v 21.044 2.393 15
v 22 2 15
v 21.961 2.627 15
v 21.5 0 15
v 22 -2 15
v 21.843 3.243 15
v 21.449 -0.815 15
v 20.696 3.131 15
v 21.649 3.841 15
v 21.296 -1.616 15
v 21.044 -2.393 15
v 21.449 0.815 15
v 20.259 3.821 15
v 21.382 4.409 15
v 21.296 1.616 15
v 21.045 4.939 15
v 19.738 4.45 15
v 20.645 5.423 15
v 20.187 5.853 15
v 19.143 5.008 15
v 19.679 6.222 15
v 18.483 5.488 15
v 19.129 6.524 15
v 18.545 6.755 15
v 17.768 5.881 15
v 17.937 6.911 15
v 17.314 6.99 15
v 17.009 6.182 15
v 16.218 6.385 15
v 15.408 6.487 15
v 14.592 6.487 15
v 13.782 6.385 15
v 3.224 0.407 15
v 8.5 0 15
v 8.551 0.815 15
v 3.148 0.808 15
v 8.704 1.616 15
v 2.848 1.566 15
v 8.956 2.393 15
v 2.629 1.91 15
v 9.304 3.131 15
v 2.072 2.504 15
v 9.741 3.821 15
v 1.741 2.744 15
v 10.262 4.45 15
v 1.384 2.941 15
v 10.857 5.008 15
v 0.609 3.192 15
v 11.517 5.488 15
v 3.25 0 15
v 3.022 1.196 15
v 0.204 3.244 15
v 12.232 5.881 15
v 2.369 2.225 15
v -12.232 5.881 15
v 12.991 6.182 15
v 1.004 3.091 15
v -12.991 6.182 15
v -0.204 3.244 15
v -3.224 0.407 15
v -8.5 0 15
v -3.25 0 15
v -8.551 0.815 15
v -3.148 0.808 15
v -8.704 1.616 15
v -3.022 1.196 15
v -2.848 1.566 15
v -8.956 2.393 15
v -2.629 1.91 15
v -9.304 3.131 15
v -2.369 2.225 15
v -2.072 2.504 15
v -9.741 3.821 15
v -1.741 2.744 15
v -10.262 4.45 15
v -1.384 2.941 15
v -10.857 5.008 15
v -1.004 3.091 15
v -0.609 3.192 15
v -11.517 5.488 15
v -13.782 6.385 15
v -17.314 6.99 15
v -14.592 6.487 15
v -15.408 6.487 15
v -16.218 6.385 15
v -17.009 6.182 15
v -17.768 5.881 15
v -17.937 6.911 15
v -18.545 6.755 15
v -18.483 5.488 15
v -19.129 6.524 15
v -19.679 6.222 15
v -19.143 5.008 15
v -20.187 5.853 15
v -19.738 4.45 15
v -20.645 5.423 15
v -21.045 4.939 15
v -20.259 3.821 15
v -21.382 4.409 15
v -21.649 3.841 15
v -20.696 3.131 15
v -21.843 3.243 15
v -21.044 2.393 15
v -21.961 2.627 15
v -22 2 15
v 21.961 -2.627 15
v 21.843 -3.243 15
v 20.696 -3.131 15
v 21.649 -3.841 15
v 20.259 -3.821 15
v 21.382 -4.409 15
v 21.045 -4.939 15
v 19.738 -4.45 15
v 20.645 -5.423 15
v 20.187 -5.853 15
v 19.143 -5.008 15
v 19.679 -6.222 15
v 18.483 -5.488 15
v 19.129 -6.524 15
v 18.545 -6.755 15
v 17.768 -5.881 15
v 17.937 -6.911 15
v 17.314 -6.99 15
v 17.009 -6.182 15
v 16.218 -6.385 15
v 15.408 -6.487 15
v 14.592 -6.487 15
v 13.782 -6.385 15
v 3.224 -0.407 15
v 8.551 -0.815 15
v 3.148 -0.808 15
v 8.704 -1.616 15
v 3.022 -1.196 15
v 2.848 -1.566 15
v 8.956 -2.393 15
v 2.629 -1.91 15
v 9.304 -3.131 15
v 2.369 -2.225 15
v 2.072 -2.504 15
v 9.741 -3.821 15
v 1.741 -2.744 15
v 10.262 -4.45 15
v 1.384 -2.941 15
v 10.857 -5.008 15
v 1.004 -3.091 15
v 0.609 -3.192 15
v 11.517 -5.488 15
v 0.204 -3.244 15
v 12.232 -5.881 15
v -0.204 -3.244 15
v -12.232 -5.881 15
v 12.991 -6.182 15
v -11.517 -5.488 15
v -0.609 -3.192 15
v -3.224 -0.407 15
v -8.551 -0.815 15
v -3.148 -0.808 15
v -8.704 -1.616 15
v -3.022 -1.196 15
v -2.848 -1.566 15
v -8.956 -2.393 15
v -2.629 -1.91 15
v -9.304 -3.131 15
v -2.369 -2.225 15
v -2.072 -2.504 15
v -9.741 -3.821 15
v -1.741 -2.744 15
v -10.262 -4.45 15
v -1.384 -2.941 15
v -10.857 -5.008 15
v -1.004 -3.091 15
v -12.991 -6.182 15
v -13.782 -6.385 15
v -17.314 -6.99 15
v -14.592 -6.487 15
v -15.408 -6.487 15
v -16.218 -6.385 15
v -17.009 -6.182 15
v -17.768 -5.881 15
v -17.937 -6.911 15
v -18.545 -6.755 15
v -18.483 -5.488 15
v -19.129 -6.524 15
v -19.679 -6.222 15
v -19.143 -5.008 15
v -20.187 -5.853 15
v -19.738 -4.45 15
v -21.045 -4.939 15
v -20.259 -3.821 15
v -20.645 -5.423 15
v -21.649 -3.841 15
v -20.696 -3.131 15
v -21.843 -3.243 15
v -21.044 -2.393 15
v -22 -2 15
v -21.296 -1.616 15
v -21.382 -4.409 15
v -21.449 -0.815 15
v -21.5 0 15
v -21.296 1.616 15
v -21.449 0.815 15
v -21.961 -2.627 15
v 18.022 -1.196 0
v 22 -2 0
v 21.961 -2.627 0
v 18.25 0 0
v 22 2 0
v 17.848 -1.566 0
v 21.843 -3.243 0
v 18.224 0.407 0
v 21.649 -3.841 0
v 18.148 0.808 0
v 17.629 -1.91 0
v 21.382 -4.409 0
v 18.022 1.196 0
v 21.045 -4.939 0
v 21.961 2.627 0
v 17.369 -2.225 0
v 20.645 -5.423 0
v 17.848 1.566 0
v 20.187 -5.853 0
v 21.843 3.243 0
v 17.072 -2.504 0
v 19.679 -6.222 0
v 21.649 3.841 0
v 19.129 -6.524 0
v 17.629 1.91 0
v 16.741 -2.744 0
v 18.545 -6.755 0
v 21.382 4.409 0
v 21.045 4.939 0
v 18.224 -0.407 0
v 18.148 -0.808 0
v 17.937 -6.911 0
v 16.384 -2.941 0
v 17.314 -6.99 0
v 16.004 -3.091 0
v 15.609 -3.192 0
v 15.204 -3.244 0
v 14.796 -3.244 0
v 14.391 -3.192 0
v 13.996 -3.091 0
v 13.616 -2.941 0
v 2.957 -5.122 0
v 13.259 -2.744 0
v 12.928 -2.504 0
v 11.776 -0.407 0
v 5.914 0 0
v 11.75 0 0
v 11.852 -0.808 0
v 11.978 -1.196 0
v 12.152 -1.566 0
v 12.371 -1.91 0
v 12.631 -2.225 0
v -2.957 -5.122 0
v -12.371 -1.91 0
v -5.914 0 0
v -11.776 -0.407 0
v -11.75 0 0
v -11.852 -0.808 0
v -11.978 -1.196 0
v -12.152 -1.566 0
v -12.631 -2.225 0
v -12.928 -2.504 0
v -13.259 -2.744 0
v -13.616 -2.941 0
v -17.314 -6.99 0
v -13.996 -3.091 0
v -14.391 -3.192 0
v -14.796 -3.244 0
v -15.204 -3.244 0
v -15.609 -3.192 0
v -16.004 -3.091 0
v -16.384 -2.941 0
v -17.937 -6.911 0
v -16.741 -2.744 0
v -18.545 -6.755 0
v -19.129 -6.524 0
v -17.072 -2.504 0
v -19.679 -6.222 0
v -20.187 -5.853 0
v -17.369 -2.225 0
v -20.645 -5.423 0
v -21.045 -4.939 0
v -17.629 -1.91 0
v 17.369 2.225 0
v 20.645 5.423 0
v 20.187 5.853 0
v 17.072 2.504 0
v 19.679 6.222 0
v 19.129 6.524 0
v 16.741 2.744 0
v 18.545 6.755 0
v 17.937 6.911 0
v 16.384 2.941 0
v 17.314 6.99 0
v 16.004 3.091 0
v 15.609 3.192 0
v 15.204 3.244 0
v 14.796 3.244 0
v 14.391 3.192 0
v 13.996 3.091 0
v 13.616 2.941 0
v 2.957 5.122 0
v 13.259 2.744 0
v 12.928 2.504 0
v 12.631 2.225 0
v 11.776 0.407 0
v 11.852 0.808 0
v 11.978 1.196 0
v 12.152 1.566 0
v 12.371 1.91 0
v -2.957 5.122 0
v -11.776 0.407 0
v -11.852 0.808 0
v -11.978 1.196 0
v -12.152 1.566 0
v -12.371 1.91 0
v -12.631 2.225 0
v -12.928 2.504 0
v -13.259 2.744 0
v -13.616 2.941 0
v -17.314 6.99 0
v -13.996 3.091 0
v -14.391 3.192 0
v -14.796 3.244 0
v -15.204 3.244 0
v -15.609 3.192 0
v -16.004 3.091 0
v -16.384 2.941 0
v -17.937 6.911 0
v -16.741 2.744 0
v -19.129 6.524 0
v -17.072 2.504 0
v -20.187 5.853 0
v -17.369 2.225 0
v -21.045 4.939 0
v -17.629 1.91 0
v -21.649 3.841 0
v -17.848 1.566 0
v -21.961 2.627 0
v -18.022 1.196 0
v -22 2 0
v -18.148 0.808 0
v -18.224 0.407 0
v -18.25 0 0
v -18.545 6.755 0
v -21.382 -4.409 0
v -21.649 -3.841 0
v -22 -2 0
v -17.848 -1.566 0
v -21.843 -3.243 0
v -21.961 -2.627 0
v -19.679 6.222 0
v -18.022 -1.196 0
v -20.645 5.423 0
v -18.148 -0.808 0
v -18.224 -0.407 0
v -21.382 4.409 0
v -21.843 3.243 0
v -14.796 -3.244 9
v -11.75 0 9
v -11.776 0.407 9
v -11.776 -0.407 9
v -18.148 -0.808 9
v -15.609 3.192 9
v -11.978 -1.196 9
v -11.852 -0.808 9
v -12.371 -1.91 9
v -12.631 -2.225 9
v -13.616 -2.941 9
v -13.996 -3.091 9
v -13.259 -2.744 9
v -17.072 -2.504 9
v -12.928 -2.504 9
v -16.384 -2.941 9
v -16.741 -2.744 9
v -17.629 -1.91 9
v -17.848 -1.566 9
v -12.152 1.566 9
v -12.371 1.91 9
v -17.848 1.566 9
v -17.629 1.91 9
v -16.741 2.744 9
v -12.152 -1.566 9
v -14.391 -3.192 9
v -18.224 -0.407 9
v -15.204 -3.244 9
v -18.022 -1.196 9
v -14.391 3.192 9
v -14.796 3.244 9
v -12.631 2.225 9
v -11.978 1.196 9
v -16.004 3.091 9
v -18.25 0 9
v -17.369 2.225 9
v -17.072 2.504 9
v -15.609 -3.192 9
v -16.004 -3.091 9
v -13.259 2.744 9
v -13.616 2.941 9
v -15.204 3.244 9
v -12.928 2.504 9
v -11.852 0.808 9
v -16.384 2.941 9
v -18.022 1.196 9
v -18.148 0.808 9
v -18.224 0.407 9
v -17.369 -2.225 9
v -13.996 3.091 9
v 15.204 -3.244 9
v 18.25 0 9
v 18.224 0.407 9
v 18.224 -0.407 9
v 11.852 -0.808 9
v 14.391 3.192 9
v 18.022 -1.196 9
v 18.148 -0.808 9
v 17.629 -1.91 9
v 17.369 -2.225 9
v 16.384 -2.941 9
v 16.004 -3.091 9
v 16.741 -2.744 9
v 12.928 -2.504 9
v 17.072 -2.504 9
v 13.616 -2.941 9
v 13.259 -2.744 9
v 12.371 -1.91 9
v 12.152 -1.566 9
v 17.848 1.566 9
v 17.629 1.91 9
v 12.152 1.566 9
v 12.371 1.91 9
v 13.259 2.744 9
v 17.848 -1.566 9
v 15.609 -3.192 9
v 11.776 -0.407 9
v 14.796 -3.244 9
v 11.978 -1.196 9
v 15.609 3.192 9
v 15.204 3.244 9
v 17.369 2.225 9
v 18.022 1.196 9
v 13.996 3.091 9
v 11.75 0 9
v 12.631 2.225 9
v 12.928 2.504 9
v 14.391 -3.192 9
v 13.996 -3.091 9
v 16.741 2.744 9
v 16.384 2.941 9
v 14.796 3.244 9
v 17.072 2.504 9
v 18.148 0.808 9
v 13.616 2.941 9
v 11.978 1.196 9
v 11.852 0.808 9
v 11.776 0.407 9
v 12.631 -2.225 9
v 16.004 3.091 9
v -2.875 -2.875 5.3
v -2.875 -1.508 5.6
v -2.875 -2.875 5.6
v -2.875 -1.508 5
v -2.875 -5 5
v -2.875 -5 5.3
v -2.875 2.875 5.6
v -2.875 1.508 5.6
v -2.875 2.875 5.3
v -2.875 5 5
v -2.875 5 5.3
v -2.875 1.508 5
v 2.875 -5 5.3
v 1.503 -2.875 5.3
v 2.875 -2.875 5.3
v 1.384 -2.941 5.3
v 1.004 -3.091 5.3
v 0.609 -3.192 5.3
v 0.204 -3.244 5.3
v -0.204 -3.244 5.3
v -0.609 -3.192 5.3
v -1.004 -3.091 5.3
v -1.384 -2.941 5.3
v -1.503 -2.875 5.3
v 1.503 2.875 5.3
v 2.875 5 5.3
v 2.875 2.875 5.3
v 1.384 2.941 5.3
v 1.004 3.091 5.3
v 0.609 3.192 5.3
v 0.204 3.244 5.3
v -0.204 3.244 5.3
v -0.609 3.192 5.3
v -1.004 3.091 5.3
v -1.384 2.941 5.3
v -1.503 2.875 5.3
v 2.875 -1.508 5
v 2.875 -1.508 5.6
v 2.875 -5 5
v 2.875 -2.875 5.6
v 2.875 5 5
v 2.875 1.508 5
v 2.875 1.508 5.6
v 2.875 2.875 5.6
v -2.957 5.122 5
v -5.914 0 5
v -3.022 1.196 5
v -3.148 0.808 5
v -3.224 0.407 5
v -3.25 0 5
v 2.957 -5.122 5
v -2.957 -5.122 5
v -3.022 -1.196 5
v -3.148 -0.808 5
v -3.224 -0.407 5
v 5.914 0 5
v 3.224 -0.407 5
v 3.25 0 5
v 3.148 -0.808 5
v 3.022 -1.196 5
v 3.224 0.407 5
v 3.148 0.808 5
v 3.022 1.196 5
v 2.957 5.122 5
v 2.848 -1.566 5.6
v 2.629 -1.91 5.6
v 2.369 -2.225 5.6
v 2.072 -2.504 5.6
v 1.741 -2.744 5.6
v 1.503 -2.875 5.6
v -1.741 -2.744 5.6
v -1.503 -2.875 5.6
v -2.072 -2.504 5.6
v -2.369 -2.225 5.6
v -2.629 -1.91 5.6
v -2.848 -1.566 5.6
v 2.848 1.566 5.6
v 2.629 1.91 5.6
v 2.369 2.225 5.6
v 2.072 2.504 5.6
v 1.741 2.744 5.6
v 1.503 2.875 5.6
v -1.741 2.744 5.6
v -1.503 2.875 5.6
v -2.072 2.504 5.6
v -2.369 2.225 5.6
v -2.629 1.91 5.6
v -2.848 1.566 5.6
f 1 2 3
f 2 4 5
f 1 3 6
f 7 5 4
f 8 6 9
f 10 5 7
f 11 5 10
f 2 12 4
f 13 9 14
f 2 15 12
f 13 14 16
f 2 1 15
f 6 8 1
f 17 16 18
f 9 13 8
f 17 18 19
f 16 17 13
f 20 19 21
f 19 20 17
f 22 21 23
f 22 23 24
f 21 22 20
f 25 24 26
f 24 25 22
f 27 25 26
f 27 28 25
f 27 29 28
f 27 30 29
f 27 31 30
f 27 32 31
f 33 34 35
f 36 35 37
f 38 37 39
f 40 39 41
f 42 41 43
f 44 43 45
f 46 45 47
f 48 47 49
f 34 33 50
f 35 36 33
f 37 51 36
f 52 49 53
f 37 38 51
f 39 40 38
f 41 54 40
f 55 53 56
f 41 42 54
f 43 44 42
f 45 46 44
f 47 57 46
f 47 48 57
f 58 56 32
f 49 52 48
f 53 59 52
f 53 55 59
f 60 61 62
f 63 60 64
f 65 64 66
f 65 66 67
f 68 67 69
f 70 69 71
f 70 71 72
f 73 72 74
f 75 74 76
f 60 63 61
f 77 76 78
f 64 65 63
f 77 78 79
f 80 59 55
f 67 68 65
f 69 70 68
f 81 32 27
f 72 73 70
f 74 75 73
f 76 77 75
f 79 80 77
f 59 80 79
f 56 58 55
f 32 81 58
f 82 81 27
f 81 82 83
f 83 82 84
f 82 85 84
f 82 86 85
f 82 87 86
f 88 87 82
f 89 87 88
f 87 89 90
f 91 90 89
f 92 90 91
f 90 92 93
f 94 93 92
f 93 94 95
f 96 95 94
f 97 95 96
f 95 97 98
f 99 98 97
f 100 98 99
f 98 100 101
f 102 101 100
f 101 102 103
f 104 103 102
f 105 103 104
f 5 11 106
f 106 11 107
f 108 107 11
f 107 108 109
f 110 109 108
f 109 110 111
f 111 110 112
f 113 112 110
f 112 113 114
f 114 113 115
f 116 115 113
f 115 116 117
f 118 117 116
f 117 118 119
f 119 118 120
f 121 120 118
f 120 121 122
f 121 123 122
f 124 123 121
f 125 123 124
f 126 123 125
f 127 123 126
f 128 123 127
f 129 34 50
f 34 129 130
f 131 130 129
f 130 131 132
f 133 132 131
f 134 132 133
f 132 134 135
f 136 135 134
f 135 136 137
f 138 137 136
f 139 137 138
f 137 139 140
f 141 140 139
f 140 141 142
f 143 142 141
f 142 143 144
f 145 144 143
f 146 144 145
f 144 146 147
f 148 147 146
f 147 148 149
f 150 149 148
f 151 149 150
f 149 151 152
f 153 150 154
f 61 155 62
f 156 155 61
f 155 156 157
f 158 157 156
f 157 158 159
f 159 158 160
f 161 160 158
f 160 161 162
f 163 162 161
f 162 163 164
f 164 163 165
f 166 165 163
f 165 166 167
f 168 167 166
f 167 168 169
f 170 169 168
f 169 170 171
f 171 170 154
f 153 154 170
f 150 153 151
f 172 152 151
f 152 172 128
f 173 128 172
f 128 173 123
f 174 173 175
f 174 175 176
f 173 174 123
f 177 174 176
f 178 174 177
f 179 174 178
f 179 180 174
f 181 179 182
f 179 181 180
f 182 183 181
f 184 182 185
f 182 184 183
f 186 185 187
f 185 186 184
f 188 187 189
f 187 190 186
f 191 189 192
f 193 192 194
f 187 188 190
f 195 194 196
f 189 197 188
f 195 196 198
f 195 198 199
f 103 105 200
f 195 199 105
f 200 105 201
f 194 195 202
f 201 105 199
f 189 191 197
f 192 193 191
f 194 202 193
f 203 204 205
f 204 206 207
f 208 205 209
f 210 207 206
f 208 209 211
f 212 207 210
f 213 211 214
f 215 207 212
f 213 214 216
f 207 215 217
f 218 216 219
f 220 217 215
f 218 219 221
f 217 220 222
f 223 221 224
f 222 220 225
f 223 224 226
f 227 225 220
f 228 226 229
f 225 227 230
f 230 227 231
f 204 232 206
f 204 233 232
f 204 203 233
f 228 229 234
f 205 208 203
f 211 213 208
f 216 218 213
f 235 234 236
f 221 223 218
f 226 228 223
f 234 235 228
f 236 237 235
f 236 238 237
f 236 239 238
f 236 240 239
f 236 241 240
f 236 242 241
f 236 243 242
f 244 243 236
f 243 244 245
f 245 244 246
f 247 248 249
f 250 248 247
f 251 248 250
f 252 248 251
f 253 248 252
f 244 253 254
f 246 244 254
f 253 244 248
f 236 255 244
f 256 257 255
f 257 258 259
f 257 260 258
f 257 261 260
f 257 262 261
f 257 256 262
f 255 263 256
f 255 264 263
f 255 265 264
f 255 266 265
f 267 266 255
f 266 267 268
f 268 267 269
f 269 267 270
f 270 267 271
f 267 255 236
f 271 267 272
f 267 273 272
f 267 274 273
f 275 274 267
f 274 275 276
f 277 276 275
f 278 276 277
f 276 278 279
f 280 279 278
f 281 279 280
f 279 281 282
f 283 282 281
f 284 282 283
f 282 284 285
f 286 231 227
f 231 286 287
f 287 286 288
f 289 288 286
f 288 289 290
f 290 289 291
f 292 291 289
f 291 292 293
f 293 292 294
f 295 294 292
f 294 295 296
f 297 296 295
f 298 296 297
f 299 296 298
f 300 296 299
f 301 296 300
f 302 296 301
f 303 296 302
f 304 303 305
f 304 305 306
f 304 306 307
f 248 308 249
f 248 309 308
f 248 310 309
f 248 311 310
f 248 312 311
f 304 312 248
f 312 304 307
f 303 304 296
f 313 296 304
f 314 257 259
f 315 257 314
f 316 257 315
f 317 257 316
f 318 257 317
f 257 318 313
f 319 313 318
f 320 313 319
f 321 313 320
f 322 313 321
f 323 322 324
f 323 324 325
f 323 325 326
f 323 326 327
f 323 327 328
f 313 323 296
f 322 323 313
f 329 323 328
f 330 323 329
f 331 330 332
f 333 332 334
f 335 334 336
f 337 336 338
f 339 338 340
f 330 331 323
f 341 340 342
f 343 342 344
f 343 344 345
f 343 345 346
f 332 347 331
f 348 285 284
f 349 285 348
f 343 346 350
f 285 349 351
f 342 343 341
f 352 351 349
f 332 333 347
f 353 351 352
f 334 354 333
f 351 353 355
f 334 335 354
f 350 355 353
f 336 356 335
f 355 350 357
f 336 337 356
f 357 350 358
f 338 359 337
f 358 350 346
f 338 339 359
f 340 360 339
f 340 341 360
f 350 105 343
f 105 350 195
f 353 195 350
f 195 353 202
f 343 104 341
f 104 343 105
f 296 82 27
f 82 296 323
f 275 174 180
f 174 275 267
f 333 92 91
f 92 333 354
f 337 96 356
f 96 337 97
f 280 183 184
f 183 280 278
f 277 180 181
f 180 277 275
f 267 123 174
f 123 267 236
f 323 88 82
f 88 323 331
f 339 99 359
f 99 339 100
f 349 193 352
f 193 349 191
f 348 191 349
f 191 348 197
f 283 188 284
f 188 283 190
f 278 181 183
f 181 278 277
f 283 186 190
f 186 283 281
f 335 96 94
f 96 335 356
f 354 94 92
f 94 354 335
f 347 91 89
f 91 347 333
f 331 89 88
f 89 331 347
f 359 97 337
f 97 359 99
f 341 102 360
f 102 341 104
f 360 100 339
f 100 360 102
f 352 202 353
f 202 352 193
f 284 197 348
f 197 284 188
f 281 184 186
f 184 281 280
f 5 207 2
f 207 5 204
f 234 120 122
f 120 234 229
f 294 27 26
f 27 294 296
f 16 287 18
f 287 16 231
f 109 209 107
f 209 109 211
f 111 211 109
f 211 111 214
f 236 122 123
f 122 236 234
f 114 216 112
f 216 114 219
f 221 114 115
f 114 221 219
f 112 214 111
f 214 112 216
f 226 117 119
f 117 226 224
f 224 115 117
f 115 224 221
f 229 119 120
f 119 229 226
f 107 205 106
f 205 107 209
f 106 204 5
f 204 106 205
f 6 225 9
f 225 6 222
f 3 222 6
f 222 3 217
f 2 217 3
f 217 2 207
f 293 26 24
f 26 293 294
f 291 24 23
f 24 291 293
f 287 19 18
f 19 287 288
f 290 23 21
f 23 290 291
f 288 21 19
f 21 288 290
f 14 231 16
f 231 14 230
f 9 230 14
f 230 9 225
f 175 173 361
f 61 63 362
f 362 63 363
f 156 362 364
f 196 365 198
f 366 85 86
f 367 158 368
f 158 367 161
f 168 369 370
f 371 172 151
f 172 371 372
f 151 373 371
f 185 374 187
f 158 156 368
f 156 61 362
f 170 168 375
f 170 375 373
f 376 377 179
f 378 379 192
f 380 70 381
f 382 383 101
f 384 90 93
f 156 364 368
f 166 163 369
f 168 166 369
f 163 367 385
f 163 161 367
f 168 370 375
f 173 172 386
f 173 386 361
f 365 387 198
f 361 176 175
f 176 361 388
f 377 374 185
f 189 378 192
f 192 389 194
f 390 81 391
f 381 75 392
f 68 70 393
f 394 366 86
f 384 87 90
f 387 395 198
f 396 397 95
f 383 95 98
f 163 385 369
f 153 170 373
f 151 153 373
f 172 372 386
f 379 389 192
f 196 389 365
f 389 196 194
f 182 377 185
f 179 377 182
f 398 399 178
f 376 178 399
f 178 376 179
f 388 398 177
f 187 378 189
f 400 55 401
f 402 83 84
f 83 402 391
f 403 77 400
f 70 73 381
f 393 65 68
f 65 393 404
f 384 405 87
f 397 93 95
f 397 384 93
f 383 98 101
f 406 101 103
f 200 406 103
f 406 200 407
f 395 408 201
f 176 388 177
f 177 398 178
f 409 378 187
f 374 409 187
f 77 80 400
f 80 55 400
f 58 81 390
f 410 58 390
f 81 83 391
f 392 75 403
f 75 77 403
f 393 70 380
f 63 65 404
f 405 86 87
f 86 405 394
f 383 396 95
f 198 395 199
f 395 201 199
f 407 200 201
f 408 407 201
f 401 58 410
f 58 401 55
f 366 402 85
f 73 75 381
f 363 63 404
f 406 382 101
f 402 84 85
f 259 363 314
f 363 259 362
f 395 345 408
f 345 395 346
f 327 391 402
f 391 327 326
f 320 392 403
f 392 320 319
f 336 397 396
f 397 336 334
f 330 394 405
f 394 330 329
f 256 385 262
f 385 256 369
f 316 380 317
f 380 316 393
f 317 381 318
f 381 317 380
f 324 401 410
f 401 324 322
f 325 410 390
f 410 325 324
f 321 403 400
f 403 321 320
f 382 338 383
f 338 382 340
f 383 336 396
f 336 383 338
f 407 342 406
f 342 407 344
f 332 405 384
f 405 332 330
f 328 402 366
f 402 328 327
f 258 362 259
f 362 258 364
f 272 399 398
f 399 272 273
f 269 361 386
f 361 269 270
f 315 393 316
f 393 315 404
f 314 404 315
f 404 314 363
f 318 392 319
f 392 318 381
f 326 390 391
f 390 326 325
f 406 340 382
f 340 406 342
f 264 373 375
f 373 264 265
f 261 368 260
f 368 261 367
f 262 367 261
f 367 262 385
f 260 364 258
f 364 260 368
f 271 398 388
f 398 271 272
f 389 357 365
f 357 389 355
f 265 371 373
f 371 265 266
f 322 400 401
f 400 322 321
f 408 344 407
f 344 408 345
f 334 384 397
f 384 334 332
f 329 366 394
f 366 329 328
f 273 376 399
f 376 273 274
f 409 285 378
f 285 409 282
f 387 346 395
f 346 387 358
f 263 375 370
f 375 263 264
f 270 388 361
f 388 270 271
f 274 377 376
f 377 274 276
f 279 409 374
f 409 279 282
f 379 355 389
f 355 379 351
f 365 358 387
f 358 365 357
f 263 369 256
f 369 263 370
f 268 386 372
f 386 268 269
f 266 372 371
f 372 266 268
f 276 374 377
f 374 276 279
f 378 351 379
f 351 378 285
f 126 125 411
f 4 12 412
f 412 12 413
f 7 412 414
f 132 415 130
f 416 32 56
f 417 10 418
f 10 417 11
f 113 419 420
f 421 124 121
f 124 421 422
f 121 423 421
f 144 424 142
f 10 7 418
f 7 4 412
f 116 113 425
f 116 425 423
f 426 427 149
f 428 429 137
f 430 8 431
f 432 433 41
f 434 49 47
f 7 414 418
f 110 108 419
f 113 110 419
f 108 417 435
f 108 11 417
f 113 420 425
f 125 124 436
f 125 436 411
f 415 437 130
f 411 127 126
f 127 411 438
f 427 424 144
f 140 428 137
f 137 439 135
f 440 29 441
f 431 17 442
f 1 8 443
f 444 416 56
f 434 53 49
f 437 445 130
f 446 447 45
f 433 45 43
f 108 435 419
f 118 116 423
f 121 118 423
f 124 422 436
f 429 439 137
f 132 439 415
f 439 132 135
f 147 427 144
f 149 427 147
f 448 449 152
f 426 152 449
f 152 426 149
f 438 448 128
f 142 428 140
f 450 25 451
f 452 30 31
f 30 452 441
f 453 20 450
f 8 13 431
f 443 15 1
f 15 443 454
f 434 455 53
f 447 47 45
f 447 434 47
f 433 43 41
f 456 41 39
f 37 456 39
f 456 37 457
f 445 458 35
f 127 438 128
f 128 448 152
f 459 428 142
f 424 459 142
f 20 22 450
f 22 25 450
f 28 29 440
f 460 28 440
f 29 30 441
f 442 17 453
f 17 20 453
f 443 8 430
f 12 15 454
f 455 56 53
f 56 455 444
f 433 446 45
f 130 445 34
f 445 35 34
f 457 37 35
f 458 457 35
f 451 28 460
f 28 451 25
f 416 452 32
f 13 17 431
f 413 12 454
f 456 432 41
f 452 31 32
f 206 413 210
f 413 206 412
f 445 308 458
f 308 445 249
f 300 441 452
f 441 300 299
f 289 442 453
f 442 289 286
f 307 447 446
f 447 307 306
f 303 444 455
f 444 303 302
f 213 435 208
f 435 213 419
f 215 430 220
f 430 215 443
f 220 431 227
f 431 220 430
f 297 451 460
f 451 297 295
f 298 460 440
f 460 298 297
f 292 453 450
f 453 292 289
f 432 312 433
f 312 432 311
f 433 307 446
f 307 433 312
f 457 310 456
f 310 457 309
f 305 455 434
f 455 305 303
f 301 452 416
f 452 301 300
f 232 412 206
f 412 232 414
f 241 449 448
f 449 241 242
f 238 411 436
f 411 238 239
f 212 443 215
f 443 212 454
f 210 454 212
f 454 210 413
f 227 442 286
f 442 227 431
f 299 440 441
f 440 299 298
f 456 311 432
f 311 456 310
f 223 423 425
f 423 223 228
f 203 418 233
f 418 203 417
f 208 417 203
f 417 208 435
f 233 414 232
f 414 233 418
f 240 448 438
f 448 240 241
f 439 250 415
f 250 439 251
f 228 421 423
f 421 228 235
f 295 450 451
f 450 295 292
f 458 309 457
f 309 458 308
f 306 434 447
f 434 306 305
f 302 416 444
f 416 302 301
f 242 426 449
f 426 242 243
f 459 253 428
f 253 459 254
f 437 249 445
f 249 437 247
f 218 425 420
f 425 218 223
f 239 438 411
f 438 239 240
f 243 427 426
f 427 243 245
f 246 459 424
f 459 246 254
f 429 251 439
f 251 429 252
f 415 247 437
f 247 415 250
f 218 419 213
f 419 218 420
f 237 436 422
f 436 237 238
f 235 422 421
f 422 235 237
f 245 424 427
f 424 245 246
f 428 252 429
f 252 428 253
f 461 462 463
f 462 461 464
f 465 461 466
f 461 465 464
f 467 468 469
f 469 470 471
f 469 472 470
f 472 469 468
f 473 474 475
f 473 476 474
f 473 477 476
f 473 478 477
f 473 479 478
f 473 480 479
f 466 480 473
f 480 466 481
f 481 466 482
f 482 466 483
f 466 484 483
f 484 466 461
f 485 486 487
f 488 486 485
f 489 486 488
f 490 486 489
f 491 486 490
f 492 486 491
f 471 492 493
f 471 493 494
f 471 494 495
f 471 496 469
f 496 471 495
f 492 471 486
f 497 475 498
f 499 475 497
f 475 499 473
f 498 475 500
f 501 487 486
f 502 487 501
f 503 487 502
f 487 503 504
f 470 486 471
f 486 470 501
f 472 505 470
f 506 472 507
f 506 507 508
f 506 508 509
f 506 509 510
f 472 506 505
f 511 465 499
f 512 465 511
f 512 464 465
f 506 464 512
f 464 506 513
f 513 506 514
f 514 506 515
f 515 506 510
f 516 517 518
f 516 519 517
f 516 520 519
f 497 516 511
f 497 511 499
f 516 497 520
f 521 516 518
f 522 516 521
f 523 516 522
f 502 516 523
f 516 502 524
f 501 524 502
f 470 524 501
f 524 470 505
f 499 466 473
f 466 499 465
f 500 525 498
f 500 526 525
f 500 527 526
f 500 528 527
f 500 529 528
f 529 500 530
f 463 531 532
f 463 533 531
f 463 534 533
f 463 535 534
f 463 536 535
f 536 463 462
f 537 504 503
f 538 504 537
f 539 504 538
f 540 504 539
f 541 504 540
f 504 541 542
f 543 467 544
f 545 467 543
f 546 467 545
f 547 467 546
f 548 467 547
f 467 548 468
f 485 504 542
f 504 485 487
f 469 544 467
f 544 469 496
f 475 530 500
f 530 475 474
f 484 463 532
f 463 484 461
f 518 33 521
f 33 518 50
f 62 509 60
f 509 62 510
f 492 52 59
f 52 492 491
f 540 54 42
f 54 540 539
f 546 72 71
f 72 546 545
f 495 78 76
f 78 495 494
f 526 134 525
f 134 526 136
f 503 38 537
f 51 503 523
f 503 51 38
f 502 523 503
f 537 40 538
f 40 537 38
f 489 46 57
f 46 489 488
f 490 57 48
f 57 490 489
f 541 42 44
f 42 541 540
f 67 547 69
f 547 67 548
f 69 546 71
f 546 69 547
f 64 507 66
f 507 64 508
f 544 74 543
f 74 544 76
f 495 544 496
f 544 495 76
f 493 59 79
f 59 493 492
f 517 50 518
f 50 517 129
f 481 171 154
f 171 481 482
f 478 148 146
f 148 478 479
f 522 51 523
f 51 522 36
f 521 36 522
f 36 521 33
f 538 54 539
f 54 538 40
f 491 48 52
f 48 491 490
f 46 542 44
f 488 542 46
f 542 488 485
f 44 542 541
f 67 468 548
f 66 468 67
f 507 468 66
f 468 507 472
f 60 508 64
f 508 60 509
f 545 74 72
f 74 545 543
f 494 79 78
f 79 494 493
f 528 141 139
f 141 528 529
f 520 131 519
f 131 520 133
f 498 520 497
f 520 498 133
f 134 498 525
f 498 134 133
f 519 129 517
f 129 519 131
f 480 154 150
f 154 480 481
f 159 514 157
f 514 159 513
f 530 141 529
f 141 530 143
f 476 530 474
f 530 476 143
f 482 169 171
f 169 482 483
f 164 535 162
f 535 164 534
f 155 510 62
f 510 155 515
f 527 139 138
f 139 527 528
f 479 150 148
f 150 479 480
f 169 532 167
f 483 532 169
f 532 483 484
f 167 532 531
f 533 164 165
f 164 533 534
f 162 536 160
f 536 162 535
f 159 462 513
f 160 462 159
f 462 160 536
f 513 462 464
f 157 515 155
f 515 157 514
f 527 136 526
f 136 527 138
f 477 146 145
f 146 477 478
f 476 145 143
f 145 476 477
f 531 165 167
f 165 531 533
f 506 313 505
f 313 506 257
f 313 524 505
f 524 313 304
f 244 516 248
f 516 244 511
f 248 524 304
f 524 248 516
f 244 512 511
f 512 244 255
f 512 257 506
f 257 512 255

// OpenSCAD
$fn = 50;


difference() {
	union() {
		cylinder(h = 15, r = 7.0000000000);
		translate(v = [-7.5000000000, 0.0000000000, 0]) {
			hull() {
				translate(v = [-9.5000000000, 2.0000000000, 0]) {
					cylinder(h = 15, r = 5);
				}
				translate(v = [9.5000000000, 2.0000000000, 0]) {
					cylinder(h = 15, r = 5);
				}
				translate(v = [-9.5000000000, -2.0000000000, 0]) {
					cylinder(h = 15, r = 5);
				}
				translate(v = [9.5000000000, -2.0000000000, 0]) {
					cylinder(h = 15, r = 5);
				}
			}
		}
		translate(v = [-7.5000000000, 0.0000000000, 0]) {
			hull() {
				translate(v = [-9.5000000000, 2.0000000000, 0]) {
					cylinder(h = 15, r = 5);
				}
				translate(v = [9.5000000000, 2.0000000000, 0]) {
					cylinder(h = 15, r = 5);
				}
				translate(v = [-9.5000000000, -2.0000000000, 0]) {
					cylinder(h = 15, r = 5);
				}
				translate(v = [9.5000000000, -2.0000000000, 0]) {
					cylinder(h = 15, r = 5);
				}
			}
		}
		translate(v = [7.5000000000, 0.0000000000, 0]) {
			hull() {
				translate(v = [-9.5000000000, 2.0000000000, 0]) {
					cylinder(h = 15, r = 5);
				}
				translate(v = [9.5000000000, 2.0000000000, 0]) {
					cylinder(h = 15, r = 5);
				}
				translate(v = [-9.5000000000, -2.0000000000, 0]) {
					cylinder(h = 15, r = 5);
				}
				translate(v = [9.5000000000, -2.0000000000, 0]) {
					cylinder(h = 15, r = 5);
				}
			}
		}
		translate(v = [7.5000000000, 0.0000000000, 0]) {
			hull() {
				translate(v = [-9.5000000000, 2.0000000000, 0]) {
					cylinder(h = 15, r = 5);
				}
				translate(v = [9.5000000000, 2.0000000000, 0]) {
					cylinder(h = 15, r = 5);
				}
				translate(v = [-9.5000000000, -2.0000000000, 0]) {
					cylinder(h = 15, r = 5);
				}
				translate(v = [9.5000000000, -2.0000000000, 0]) {
					cylinder(h = 15, r = 5);
				}
			}
		}
	}
	union() {
		translate(v = [-15.0000000000, 0.0000000000, 15]) {
			rotate(a = [0, 0, 0]) {
				difference() {
					union() {
						#translate(v = [0, 0, -15.0000000000]) {
							cylinder(h = 15, r = 2.2500000000);
						}
						#translate(v = [0, 0, -6]) {
							cylinder(h = 6, r1 = 3.2500000000, r2 = 6.5000000000);
						}
						#translate(v = [0, 0, -15.0000000000]) {
							cylinder(h = 15, r = 3.2500000000);
						}
						#translate(v = [0, 0, -15.0000000000]) {
							cylinder(h = 15, r = 2.2500000000);
						}
					}
					union();
				}
			}
		}
		translate(v = [-15.0000000000, 0.0000000000, 15]) {
			rotate(a = [0, 0, 0]) {
				difference() {
					union() {
						#translate(v = [0, 0, -15.0000000000]) {
							cylinder(h = 15, r = 2.2500000000);
						}
						#translate(v = [0, 0, -6]) {
							cylinder(h = 6, r1 = 3.2500000000, r2 = 6.5000000000);
						}
						#translate(v = [0, 0, -15.0000000000]) {
							cylinder(h = 15, r = 3.2500000000);
						}
						#translate(v = [0, 0, -15.0000000000]) {
							cylinder(h = 15, r = 2.2500000000);
						}
					}
					union();
				}
			}
		}
		translate(v = [15.0000000000, 0.0000000000, 15]) {
			rotate(a = [0, 0, 0]) {
				difference() {
					union() {
						#translate(v = [0, 0, -15.0000000000]) {
							cylinder(h = 15, r = 2.2500000000);
						}
						#translate(v = [0, 0, -6]) {
							cylinder(h = 6, r1 = 3.2500000000, r2 = 6.5000000000);
						}
						#translate(v = [0, 0, -15.0000000000]) {
							cylinder(h = 15, r = 3.2500000000);
						}
						#translate(v = [0, 0, -15.0000000000]) {
							cylinder(h = 15, r = 2.2500000000);
						}
					}
					union();
				}
			}
		}
		translate(v = [15.0000000000, 0.0000000000, 15]) {
			rotate(a = [0, 0, 0]) {
				difference() {
					union() {
						#translate(v = [0, 0, -15.0000000000]) {
							cylinder(h = 15, r = 2.2500000000);
						}
						#translate(v = [0, 0, -6]) {
							cylinder(h = 6, r1 = 3.2500000000, r2 = 6.5000000000);
						}
						#translate(v = [0, 0, -15.0000000000]) {
							cylinder(h = 15, r = 3.2500000000);
						}
						#translate(v = [0, 0, -15.0000000000]) {
							cylinder(h = 15, r = 2.2500000000);
						}
					}
					union();
				}
			}
		}
		translate(v = [0.0000000000, 0.0000000000, 0]) {
			rotate(a = [0, 0, 0]) {
				difference() {
					union() {
						#translate(v = [-2.8750000000, -5.0000000000, -0.3000000000]) {
							cube(size = [5.7500000000, 10, 0.3000000000]);
						}
						#translate(v = [-2.8750000000, -2.8750000000, -0.6000000000]) {
							cube(size = [5.7500000000, 5.7500000000, 0.3000000000]);
						}
						#translate(v = [-2.8750000000, -5.0000000000, 5]) {
							cube(size = [5.7500000000, 10, 0.3000000000]);
						}
						#translate(v = [-2.8750000000, -2.8750000000, 5.3000000000]) {
							cube(size = [5.7500000000, 5.7500000000, 0.3000000000]);
						}
						#translate(v = [0, 0, -100.0000000000]) {
							cylinder(h = 200, r = 3.2500000000);
						}
						#linear_extrude(height = 5) {
							polygon(points = [[5.9142500000, 0.0000000000], [2.9571250000, 5.1218907443], [-2.9571250000, 5.1218907443], [-5.9142500000, 0.0000000000], [-2.9571250000, -5.1218907443], [2.9571250000, -5.1218907443]]);
						}
						#translate(v = [-2.8750000000, -5.0000000000, -0.3000000000]) {
							cube(size = [5.7500000000, 10, 0.3000000000]);
						}
						#translate(v = [-2.8750000000, -2.8750000000, -0.6000000000]) {
							cube(size = [5.7500000000, 5.7500000000, 0.3000000000]);
						}
						#translate(v = [-2.8750000000, -5.0000000000, 5]) {
							cube(size = [5.7500000000, 10, 0.3000000000]);
						}
						#translate(v = [-2.8750000000, -2.8750000000, 5.3000000000]) {
							cube(size = [5.7500000000, 5.7500000000, 0.3000000000]);
						}
						#translate(v = [0, 0, -100.0000000000]) {
							cylinder(h = 200, r = 3.2500000000);
						}
						#translate(v = [-2.8750000000, -5.0000000000, -0.3000000000]) {
							cube(size = [5.7500000000, 10, 0.3000000000]);
						}
						#translate(v = [-2.8750000000, -2.8750000000, -0.6000000000]) {
							cube(size = [5.7500000000, 5.7500000000, 0.3000000000]);
						}
						#translate(v = [-2.8750000000, -5.0000000000, 5]) {
							cube(size = [5.7500000000, 10, 0.3000000000]);
						}
						#translate(v = [-2.8750000000, -2.8750000000, 5.3000000000]) {
							cube(size = [5.7500000000, 5.7500000000, 0.3000000000]);
						}
						#translate(v = [0, 0, -100.0000000000]) {
							cylinder(h = 200, r = 3.2500000000);
						}
					}
					union();
				}
			}
		}
		translate(v = [0, 0, -100]) {
			cylinder(h = 200, r = 3.2500000000);
		}
		translate(v = [0, 0, -100]) {
			cylinder(h = 200, r = 1.8000000000);
		}
	}
}
